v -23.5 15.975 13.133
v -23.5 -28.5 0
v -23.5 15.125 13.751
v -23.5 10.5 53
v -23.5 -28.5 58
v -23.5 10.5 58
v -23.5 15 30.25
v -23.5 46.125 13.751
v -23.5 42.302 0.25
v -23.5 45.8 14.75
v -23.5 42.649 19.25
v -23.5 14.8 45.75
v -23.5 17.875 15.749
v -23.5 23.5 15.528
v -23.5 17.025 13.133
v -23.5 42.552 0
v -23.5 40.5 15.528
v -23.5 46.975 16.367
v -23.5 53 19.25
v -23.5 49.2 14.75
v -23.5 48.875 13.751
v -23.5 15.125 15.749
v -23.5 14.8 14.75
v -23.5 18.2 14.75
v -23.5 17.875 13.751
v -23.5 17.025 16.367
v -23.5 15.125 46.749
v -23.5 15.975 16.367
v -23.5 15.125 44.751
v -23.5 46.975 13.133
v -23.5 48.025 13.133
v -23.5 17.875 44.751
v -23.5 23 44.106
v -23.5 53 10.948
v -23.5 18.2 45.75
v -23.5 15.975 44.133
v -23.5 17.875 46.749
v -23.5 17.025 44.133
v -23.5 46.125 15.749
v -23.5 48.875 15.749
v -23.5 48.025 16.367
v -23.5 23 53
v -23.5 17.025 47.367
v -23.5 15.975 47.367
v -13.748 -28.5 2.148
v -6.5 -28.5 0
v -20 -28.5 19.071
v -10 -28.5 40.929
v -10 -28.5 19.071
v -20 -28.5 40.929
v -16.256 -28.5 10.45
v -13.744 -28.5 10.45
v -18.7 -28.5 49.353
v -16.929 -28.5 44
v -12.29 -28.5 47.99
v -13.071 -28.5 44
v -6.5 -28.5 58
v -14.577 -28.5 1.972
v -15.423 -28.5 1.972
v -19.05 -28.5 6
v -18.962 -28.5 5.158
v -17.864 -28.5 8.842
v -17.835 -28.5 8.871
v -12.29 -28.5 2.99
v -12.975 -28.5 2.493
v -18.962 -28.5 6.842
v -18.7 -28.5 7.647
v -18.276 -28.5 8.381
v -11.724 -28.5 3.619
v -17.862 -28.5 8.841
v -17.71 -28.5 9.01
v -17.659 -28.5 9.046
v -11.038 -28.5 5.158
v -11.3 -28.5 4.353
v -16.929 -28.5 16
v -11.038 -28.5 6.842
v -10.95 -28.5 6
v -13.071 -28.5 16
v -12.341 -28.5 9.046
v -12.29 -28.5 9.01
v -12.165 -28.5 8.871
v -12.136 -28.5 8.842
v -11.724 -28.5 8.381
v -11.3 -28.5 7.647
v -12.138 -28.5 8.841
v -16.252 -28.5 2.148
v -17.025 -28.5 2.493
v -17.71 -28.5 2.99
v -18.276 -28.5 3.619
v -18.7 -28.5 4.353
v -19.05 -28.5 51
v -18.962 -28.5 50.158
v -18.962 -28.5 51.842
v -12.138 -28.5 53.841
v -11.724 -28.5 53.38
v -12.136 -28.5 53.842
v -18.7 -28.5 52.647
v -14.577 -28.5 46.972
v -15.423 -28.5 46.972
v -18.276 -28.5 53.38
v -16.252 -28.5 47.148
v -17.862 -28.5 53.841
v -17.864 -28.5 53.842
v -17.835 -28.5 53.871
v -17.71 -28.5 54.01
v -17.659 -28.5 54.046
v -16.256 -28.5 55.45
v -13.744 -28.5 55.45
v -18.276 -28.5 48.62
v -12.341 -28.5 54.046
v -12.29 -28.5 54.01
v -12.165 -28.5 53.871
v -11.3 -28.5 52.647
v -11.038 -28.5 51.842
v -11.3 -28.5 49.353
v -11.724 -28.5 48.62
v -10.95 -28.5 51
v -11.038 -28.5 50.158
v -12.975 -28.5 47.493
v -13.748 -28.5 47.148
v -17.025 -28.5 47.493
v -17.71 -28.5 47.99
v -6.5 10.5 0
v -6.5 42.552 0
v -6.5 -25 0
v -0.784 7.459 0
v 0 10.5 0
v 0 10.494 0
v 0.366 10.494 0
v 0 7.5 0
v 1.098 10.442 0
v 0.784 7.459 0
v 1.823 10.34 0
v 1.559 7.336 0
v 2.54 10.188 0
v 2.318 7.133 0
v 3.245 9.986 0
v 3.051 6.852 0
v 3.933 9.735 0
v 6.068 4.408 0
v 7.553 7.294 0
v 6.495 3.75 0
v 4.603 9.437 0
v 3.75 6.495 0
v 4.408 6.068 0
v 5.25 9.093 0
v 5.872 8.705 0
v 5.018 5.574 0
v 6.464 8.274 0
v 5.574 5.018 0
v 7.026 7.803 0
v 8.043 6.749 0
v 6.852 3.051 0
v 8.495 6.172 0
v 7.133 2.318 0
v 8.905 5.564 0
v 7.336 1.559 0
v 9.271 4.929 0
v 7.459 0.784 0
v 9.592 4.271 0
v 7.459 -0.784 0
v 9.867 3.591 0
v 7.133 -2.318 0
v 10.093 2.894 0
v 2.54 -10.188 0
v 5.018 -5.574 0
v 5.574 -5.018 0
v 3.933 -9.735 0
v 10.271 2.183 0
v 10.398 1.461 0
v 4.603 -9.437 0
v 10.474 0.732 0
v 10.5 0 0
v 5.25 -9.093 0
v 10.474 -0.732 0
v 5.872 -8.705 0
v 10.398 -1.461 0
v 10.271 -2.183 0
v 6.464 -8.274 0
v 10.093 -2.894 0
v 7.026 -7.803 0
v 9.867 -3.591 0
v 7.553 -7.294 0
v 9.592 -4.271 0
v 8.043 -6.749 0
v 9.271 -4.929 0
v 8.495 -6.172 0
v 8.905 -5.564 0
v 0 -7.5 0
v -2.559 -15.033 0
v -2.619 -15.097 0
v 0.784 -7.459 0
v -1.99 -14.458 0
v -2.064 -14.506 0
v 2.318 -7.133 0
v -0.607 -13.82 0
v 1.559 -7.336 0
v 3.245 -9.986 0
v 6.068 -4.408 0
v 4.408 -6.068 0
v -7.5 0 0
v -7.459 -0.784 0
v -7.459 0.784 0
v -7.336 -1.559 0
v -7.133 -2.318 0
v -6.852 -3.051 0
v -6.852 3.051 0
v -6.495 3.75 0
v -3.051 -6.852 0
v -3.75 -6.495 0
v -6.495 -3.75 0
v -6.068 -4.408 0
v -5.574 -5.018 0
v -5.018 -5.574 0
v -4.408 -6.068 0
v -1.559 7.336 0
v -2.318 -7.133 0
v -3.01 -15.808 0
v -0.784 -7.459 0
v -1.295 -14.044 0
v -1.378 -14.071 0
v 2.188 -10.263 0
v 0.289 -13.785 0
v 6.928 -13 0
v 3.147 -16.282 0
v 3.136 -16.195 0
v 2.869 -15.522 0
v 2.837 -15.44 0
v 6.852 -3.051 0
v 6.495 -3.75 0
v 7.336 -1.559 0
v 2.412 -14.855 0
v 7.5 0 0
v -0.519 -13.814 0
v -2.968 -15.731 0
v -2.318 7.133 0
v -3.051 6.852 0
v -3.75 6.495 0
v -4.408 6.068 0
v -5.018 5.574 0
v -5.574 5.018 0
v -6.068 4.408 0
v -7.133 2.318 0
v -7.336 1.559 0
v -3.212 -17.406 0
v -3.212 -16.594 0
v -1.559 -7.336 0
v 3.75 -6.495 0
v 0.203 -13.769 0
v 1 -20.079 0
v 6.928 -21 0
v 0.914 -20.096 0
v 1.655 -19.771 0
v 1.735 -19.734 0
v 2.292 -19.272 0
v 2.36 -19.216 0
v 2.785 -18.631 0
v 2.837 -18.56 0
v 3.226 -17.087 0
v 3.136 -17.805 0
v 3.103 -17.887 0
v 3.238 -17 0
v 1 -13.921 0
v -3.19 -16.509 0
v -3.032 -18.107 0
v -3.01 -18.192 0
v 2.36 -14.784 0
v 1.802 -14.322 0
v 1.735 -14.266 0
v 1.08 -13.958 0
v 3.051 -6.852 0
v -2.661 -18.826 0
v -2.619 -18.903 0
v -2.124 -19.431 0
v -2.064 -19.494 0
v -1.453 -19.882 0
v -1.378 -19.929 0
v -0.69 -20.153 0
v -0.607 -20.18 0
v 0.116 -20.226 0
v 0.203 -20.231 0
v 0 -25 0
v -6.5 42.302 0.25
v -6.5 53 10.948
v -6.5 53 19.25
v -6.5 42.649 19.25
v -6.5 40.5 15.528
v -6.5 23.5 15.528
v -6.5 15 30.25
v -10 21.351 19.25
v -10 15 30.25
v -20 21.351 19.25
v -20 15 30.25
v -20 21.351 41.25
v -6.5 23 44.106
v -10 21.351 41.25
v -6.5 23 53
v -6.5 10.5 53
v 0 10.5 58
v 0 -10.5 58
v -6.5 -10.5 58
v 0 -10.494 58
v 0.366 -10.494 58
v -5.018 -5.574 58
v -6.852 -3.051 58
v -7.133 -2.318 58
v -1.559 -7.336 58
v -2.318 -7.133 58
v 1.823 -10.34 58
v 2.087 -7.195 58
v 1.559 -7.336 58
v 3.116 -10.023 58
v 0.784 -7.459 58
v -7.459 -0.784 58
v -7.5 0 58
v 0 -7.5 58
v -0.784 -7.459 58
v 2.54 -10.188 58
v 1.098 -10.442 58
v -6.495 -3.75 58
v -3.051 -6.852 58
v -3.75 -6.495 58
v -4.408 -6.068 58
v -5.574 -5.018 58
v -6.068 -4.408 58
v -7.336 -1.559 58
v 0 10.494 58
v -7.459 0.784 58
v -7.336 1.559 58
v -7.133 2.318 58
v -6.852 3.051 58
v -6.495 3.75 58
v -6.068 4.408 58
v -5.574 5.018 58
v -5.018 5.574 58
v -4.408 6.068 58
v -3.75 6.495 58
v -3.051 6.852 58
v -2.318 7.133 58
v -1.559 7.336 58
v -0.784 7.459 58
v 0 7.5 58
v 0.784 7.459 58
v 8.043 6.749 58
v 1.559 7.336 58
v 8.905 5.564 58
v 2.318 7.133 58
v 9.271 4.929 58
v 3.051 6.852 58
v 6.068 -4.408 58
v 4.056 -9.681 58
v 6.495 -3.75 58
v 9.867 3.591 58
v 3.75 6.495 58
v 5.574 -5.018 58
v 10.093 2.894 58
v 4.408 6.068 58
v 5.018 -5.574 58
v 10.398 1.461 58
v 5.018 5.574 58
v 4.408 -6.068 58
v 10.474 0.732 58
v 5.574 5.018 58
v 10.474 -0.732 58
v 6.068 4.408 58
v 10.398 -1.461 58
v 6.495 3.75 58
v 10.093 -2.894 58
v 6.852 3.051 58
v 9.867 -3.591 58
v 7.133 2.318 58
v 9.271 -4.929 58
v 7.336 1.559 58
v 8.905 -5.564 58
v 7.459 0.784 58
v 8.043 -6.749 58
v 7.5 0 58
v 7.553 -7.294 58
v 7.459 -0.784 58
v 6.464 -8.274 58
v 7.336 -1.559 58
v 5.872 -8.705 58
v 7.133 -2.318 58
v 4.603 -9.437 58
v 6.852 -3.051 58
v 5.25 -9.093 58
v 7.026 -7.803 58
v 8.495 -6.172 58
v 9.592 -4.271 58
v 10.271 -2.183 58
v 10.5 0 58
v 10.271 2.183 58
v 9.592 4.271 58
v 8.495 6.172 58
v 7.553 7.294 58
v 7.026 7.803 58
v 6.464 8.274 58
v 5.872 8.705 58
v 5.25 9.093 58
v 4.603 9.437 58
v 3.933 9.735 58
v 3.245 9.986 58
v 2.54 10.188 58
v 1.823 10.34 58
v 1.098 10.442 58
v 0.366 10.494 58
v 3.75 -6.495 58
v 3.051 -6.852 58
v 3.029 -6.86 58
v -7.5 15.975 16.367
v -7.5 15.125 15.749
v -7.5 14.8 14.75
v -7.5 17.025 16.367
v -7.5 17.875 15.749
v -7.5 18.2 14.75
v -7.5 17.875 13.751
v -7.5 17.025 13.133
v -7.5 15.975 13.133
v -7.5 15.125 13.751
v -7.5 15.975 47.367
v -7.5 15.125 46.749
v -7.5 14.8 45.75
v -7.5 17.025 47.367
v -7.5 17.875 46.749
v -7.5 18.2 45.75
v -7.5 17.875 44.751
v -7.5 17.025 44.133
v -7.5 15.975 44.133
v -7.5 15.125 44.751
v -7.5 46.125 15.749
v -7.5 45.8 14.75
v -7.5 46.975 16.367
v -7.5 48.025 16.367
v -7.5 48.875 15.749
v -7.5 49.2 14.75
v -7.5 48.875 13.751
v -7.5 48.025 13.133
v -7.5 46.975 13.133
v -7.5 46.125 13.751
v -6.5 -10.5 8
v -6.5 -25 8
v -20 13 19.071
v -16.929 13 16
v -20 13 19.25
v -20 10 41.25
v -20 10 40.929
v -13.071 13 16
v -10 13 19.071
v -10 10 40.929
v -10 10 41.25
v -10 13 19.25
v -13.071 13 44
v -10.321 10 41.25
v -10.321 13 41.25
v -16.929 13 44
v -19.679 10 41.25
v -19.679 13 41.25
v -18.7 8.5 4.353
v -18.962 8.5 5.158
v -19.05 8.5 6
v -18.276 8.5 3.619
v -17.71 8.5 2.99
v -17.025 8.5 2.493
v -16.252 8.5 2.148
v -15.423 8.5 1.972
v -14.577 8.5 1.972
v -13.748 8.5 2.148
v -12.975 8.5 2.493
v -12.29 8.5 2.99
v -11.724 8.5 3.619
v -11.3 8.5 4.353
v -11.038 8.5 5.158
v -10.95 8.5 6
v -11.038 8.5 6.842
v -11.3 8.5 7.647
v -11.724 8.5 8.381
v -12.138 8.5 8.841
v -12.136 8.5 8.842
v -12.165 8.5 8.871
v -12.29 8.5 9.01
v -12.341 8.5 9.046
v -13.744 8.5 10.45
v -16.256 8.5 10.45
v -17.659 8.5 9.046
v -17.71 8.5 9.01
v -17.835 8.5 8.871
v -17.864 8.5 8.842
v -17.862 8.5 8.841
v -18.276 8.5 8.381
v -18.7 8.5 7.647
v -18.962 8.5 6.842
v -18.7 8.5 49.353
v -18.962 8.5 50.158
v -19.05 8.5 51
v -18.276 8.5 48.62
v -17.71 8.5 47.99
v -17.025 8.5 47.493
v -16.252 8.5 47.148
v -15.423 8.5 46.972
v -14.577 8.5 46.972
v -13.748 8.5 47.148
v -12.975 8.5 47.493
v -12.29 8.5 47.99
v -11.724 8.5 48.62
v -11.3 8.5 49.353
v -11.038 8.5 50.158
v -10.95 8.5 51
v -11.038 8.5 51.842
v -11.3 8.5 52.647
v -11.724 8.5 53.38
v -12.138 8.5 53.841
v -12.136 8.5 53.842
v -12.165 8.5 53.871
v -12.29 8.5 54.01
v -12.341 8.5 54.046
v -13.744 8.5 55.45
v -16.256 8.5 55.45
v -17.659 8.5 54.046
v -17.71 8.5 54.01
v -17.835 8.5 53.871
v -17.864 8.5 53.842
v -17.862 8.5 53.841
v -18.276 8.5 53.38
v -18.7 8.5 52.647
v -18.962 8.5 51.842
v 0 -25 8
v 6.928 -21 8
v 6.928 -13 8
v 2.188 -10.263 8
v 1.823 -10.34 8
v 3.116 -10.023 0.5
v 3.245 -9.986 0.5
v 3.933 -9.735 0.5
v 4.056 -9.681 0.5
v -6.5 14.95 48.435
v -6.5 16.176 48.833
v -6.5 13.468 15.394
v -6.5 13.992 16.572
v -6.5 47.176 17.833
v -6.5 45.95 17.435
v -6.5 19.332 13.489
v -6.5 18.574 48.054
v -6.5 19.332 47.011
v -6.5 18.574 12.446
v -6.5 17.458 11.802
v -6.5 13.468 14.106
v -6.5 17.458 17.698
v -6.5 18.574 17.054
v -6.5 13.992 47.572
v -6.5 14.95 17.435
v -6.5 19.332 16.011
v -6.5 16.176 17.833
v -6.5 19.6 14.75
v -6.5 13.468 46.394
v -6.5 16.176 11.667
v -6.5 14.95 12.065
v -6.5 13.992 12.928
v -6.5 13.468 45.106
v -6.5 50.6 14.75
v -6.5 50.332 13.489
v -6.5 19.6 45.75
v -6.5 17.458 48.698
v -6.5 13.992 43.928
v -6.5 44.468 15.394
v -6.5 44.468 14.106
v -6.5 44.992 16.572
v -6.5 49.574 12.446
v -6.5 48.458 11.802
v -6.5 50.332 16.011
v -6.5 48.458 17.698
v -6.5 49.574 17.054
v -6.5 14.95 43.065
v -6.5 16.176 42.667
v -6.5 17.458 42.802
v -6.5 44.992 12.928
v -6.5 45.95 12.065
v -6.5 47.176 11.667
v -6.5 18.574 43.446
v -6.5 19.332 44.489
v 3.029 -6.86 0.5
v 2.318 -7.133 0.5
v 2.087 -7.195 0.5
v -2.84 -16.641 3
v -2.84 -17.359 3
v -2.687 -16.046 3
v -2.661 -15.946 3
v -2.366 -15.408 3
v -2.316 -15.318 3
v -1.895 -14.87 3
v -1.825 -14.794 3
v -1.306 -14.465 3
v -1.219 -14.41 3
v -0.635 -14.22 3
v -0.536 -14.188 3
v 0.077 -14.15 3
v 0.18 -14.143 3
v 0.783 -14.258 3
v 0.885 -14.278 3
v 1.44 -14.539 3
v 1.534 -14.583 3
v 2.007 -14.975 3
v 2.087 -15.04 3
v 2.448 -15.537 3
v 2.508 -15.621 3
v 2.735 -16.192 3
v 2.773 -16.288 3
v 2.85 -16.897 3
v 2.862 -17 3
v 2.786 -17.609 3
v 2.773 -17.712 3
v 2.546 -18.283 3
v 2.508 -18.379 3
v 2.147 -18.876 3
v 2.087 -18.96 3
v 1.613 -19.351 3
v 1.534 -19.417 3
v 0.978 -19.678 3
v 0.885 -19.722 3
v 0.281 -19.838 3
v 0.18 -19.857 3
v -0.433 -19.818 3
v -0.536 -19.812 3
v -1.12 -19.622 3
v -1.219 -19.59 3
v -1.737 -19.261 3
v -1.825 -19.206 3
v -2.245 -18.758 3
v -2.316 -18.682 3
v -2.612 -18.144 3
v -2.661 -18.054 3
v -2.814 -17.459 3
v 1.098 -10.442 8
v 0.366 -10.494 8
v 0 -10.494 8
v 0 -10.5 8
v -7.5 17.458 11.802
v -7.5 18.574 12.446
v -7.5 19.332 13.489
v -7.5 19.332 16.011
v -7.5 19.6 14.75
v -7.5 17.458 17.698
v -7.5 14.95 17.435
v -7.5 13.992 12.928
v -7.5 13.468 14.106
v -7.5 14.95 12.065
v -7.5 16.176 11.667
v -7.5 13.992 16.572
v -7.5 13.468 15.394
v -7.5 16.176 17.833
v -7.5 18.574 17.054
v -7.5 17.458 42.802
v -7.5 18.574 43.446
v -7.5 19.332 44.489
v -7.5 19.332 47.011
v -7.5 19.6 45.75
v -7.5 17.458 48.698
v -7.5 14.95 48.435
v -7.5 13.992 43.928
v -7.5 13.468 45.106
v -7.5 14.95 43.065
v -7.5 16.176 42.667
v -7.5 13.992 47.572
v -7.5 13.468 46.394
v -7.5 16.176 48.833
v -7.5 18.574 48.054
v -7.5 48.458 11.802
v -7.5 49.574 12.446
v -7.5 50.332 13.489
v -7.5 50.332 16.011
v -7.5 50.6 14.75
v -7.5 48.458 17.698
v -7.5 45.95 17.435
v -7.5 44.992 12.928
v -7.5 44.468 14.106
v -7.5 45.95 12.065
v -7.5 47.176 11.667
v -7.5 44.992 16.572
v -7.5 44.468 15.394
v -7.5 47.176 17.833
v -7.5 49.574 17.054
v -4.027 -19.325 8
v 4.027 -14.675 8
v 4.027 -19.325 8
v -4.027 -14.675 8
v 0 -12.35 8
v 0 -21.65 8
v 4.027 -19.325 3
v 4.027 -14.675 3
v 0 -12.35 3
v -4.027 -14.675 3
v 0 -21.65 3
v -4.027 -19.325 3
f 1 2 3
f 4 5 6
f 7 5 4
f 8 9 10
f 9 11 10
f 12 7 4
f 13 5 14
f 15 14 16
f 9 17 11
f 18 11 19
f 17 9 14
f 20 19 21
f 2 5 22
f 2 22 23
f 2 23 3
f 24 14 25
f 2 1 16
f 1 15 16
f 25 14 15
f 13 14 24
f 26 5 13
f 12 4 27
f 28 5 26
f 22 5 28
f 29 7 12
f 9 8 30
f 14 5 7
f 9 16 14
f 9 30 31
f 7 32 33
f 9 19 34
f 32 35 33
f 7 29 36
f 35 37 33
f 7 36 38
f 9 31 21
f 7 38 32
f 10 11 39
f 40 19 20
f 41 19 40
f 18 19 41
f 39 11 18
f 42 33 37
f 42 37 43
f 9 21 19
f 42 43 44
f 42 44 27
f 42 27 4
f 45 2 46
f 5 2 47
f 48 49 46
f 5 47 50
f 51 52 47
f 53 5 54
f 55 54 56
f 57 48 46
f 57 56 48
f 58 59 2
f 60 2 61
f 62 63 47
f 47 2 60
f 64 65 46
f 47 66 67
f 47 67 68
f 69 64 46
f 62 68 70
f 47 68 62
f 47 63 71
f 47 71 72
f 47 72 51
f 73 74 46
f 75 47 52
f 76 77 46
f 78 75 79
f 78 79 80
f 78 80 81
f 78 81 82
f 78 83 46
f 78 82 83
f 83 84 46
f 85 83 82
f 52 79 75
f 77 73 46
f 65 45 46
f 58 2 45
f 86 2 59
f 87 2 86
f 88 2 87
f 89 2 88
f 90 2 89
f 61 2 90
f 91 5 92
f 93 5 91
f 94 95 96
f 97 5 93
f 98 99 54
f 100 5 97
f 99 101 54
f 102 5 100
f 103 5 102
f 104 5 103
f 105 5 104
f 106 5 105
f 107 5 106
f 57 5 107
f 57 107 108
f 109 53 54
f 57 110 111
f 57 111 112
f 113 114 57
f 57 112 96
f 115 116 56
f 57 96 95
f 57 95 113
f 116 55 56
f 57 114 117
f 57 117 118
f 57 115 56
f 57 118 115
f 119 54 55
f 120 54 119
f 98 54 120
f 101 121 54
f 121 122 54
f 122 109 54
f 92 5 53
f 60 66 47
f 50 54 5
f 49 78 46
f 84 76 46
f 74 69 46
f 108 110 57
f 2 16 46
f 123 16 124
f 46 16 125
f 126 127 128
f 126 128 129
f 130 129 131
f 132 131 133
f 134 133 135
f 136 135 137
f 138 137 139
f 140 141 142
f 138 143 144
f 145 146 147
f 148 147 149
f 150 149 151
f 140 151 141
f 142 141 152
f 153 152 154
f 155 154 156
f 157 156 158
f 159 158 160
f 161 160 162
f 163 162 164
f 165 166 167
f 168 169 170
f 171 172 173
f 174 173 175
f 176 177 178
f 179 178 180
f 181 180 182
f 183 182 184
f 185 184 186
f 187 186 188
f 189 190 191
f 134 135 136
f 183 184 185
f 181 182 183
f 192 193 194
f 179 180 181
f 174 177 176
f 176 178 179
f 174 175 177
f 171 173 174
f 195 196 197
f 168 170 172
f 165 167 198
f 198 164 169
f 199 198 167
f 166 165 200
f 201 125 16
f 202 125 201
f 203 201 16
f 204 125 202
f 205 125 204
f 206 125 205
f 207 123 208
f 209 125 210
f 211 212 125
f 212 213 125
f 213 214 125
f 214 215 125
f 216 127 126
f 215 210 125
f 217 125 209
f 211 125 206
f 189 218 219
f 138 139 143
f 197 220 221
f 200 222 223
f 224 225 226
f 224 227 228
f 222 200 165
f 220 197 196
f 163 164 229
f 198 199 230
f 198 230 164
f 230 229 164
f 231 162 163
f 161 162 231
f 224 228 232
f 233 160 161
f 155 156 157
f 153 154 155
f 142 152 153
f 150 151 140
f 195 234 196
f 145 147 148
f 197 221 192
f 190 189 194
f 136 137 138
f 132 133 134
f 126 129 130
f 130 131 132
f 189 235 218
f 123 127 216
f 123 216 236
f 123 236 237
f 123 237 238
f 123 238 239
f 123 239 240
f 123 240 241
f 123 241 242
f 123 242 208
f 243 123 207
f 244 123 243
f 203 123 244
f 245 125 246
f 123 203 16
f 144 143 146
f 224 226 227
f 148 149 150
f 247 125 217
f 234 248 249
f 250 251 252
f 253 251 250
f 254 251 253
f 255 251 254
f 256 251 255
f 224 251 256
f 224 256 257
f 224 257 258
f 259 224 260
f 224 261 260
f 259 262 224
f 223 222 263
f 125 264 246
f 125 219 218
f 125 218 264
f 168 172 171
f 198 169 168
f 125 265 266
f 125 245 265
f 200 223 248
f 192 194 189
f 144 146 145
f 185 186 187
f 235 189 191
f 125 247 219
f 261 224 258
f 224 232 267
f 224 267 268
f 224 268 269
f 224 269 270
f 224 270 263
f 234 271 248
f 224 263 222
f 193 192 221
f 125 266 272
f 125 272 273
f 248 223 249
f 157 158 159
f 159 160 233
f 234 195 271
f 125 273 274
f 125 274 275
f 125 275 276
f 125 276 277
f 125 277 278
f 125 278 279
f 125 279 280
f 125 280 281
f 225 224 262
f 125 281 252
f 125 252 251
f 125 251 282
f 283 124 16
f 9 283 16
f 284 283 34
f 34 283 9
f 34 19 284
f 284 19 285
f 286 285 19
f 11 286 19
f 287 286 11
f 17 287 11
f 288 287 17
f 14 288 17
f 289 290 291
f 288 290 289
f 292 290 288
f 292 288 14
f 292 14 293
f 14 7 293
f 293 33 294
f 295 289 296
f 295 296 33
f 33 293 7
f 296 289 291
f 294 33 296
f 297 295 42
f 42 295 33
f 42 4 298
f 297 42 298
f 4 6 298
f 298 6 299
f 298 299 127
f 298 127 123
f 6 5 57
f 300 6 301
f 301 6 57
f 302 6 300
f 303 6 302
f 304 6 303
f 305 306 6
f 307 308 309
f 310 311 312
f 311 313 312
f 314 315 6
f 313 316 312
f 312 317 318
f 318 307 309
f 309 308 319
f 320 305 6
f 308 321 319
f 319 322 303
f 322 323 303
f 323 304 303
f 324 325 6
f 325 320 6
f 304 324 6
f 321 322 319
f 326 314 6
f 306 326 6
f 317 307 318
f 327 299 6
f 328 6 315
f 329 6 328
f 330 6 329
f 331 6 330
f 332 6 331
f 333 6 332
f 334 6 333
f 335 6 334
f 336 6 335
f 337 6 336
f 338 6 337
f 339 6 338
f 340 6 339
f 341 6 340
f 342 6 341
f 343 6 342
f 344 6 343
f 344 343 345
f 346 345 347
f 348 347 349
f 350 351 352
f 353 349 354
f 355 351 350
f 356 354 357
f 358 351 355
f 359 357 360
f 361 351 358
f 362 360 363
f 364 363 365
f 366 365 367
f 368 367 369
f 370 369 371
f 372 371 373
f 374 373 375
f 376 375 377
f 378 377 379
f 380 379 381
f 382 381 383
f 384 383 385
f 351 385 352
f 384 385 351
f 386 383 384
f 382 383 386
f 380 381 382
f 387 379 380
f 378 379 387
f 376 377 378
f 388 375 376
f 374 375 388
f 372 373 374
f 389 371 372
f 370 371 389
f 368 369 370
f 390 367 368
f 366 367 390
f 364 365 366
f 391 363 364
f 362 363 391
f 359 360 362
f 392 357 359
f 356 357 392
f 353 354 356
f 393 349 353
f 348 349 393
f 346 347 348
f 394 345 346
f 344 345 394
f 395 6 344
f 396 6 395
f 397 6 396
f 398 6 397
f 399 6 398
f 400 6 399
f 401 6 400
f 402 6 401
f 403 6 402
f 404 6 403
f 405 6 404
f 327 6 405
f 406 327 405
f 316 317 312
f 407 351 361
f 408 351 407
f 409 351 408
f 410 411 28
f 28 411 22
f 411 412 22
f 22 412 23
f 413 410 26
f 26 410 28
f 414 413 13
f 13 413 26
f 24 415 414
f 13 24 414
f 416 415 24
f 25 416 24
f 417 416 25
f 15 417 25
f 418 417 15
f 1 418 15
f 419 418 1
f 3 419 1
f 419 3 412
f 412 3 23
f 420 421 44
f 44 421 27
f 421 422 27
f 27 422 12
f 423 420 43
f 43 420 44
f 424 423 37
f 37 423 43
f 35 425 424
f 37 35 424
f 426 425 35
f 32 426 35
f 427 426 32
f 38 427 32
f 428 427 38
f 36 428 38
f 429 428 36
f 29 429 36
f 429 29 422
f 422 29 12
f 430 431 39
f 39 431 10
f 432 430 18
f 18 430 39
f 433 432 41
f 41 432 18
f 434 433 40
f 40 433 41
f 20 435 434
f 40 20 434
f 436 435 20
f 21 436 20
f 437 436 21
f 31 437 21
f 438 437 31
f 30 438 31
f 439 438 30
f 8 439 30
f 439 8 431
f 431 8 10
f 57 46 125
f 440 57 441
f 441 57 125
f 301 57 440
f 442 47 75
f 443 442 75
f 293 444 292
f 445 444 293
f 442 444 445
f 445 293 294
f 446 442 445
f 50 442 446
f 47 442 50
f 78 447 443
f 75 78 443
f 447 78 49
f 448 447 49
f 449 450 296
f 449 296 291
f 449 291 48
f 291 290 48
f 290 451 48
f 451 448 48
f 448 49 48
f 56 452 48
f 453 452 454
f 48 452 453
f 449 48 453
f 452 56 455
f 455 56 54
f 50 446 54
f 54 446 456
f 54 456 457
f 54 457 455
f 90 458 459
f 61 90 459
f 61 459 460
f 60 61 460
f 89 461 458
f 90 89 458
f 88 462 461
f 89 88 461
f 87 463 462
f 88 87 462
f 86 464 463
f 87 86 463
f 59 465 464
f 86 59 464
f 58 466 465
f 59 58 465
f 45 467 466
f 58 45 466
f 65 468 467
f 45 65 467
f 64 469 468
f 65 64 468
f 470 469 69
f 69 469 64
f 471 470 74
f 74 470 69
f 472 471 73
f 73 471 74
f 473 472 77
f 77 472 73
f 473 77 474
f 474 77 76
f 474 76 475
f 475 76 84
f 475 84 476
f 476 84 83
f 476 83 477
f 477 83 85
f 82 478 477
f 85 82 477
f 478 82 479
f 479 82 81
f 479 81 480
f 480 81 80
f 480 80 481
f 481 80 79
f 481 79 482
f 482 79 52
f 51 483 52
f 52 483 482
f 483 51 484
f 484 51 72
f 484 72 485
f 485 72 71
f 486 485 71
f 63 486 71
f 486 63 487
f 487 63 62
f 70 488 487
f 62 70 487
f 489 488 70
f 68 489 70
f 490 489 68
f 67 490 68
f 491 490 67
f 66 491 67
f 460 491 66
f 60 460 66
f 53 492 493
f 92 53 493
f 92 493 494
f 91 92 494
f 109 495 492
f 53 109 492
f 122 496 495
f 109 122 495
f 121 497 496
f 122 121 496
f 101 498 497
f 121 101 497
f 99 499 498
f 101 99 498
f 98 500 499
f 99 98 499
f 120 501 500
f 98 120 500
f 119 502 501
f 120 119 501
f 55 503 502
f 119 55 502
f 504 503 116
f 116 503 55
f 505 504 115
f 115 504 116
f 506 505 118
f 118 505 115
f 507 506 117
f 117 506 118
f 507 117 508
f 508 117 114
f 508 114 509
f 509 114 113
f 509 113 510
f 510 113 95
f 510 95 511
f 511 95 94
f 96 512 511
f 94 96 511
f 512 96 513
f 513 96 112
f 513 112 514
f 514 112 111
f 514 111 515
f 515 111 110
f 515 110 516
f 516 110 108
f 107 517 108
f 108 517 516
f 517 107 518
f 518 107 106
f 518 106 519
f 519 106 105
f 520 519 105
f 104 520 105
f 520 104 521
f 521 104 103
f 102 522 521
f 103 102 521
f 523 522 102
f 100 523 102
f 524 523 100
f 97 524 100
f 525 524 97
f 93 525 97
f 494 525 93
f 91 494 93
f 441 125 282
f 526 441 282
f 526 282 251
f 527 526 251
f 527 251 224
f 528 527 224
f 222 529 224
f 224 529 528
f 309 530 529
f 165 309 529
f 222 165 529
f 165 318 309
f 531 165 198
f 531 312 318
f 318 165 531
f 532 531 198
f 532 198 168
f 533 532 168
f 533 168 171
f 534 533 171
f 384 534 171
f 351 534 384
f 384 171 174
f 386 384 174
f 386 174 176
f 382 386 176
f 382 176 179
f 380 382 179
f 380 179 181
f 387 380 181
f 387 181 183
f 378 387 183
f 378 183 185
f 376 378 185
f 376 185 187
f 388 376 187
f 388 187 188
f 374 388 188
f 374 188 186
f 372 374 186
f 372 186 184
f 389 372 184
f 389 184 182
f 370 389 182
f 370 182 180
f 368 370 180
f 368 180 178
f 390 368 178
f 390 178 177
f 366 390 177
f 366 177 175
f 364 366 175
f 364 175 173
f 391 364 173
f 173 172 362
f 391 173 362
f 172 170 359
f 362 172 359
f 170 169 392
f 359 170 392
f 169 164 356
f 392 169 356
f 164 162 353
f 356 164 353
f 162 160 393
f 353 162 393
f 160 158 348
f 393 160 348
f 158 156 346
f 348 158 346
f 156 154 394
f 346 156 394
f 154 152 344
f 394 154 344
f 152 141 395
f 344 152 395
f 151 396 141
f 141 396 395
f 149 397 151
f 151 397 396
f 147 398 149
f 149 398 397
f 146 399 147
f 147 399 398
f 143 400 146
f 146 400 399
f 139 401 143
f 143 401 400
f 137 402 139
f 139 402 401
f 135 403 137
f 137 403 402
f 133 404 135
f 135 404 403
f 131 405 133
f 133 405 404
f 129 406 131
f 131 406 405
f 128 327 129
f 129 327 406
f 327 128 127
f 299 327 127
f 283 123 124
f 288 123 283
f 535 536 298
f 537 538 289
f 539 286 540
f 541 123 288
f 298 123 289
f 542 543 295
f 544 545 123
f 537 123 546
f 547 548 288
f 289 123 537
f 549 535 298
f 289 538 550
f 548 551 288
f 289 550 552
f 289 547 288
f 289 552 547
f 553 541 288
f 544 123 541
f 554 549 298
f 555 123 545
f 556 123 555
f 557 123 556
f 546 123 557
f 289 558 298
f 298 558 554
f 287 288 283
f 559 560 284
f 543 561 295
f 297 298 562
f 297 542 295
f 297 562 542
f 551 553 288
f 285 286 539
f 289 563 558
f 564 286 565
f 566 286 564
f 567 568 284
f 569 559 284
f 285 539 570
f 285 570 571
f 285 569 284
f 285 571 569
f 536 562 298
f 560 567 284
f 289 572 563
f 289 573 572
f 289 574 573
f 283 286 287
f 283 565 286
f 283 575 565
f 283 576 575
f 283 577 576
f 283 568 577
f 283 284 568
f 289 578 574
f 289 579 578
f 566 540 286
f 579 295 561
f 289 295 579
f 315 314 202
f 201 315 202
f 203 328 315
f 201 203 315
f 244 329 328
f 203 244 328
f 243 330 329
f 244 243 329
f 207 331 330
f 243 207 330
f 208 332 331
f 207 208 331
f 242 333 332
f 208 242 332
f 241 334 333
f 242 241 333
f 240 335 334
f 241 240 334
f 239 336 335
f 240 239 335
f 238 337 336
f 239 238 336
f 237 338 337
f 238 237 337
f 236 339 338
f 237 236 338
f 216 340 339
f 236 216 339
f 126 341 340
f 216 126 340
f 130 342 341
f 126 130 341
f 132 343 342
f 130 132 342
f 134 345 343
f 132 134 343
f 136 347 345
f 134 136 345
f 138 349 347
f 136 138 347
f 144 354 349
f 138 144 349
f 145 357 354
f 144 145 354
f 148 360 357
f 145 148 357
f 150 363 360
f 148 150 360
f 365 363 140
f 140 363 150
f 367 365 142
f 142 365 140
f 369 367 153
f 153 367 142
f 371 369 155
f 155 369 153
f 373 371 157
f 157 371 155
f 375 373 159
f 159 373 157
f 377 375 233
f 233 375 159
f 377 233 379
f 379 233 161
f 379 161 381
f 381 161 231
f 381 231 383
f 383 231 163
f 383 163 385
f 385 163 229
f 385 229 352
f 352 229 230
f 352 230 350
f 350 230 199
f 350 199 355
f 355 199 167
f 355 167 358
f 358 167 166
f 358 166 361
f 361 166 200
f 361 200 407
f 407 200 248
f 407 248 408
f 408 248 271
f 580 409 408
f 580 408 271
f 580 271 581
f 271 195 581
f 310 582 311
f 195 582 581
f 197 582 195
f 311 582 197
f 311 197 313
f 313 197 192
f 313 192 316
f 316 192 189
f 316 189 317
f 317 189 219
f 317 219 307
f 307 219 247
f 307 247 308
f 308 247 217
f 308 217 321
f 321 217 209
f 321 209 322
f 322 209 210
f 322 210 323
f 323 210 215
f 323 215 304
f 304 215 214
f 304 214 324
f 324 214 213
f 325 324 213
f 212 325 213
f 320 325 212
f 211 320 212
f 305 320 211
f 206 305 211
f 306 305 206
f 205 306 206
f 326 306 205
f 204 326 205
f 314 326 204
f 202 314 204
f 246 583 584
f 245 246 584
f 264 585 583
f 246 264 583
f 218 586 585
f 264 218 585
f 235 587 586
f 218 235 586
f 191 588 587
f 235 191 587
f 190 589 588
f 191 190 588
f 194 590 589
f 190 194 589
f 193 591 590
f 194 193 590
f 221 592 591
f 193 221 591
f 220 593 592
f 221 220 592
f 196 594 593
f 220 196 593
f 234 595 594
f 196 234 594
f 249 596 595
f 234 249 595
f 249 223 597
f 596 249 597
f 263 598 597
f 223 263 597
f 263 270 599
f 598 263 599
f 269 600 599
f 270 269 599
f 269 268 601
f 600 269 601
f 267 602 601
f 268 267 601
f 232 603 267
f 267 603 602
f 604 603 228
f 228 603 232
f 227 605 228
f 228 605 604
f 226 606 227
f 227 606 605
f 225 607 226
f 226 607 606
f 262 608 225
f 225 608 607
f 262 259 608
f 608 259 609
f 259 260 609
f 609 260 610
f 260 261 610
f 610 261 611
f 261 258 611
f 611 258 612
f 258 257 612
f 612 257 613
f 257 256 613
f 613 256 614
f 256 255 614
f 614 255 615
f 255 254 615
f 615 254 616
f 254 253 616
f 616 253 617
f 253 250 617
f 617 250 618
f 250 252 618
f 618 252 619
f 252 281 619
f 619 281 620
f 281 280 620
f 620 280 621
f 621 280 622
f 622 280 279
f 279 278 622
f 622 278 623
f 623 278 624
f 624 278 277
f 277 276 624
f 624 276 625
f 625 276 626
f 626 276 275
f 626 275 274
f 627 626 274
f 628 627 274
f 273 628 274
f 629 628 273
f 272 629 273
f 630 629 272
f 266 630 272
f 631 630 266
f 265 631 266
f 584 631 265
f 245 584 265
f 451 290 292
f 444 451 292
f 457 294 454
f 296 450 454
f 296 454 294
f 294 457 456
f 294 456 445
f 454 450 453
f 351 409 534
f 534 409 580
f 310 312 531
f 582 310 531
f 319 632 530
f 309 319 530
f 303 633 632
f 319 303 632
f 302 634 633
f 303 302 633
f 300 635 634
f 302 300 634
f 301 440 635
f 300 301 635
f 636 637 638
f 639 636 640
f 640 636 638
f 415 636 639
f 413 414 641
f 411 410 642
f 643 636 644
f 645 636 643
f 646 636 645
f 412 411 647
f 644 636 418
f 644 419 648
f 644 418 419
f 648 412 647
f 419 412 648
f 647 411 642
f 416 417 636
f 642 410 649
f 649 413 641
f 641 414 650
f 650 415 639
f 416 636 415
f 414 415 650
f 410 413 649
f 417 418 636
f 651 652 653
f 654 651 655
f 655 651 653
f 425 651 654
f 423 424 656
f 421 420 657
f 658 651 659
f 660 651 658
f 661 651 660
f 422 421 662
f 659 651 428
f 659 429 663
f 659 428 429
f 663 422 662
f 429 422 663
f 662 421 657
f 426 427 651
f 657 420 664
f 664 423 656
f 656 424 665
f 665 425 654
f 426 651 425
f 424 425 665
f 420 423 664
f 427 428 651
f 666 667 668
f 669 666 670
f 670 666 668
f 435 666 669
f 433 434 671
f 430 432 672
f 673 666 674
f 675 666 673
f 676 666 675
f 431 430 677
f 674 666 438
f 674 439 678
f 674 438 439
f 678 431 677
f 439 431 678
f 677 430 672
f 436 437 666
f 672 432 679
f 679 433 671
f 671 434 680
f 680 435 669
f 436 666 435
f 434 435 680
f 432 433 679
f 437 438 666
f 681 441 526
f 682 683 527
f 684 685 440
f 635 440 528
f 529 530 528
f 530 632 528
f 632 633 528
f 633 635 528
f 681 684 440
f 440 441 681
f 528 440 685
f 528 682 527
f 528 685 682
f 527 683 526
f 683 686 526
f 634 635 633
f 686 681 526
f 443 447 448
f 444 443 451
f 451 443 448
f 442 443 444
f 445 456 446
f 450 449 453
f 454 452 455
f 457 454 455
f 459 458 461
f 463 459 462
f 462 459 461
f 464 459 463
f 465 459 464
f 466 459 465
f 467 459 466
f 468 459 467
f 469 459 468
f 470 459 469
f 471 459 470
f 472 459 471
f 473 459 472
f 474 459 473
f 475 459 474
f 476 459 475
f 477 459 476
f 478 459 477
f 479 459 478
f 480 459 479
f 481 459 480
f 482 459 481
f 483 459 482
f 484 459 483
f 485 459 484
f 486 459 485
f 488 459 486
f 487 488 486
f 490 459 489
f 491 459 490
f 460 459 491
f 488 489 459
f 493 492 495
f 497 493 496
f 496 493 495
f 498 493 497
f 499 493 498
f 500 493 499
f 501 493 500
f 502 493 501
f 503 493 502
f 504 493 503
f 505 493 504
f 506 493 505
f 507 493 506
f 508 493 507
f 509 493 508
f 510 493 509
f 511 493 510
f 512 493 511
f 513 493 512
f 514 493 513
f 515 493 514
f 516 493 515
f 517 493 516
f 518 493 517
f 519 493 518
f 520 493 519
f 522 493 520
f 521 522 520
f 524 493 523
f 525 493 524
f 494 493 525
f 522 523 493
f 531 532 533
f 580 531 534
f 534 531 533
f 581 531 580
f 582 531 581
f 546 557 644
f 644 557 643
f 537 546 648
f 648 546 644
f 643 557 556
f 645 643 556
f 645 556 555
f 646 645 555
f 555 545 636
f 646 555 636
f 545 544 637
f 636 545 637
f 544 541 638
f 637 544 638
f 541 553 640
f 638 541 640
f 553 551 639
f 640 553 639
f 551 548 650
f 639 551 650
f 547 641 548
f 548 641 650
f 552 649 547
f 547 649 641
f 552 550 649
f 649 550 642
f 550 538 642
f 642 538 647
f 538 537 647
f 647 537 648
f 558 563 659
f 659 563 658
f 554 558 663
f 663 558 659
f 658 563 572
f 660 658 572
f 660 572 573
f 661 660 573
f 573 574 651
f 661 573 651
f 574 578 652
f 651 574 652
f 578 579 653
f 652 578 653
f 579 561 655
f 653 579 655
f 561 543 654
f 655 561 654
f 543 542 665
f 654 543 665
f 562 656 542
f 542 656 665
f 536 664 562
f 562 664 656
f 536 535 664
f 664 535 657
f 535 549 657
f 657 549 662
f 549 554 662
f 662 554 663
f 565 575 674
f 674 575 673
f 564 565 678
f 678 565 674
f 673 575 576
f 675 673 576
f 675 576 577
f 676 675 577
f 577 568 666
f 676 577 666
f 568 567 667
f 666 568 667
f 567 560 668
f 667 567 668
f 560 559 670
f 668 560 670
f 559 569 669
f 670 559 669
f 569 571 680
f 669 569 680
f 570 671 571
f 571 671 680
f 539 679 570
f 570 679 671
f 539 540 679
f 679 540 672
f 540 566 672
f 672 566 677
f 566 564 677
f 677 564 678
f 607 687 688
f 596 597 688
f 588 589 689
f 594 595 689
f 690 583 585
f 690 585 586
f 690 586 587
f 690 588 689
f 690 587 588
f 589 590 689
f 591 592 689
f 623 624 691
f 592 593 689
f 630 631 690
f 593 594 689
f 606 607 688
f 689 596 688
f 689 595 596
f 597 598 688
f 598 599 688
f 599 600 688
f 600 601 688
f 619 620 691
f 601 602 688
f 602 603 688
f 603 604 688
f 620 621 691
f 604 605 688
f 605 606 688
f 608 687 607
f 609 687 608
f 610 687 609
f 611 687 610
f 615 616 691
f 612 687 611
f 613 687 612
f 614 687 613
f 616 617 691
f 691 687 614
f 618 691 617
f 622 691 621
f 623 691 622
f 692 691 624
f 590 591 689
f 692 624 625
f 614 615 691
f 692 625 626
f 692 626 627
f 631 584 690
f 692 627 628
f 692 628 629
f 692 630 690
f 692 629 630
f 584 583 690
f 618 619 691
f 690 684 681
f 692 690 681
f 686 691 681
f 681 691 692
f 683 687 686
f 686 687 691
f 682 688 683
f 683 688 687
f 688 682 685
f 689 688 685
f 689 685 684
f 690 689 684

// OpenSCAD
// file: inc/bearing.scad
// PRUSA iteration3
// Bearing holders
// GNU GPL v3
// Josef Průša <iam@josefprusa.cz> and contributors
// http://www.reprap.org/wiki/Prusa_Mendel
// http://prusamendel.org

bearing_diameter = 15;

module horizontal_bearing_base(bearings=1) {
  translate(v=[0,0,6]) cube(size = [24,8+bearings*25,12], center = true);
}

module horizontal_bearing_holes(bearings=1) {
  cutter_lenght = 10+bearings*25;
  one_holder_lenght = 8+25;
  holder_lenght = 8+bearings*25;

  // Main bearing cut
  difference() {
    translate(v = [0,0,12]) rotate(a = [90,0,0]) translate(v = [0,0,-cutter_lenght/2]) cylinder(h = cutter_lenght, r = bearing_diameter/2, $fn = 50);
    // Bearing retainers
    translate(v=[0,1-holder_lenght/2,3]) cube(size = [24,6,8], center = true);
    translate(v=[0,-1+holder_lenght/2,3]) cube(size = [24,6,8], center = true);
  }

  // Ziptie cutouts
  ziptie_cut_ofset = 0;

  for (i = [0:bearings-1]) {
    // For easier positioning I move them by half of one
    // bearing holder then add each bearign lenght and then center again
    translate(v = [0,-holder_lenght/2,0]) translate(v = [0,one_holder_lenght/2+i*25,0]) difference(){
      union(){
        translate(v = [0,2-6,12]) rotate(a = [90,0,0]) translate(v = [0,0,0]) cylinder(h = 4, r = 12.5, $fn = 50);
        translate(v = [0,2+6,12]) rotate(a = [90,0,0]) translate(v = [0,0,0]) cylinder(h = 4, r = 12.5, $fn = 50);
      }
      translate(v = [0,10,12]) rotate(a = [90,0,0]) translate(v = [0,0,0]) cylinder(h = 24, r = 10, $fn = 50);
    }
  }
}

module horizontal_bearing_test() {
  difference(){
    horizontal_bearing_base(1);
    horizontal_bearing_holes(1);
  }
  translate(v=[30,0,0]) difference(){
    horizontal_bearing_base(2);
    horizontal_bearing_holes(2);
  }
  translate(v=[60,0,0]) difference(){
    horizontal_bearing_base(3);
    horizontal_bearing_holes(3);
  }
}

thinwall = 3;
bearing_size = bearing_diameter + 2 * thinwall;

module vertical_bearing_base() {
  translate(v = [-2-bearing_size/4,0,29]) cube(size = [4+bearing_size/2,bearing_size,58], center = true);
  cylinder(h = 58, r=bearing_size/2, $fn = 90);
}

module vertical_bearing_holes() {
  translate(v = [0,0,-1]) cylinder(h = 62, r = bearing_diameter/2, $fn = 60);
  rotate(a = [0,0,-70]) translate(v = [8,0,31.5]) cube(size = [5,1,62], center = true);
}

difference() {
  vertical_bearing_base();
  vertical_bearing_holes();
}
// file: inc/x-end.scad
// PRUSA iteration3
// X end prototype
// GNU GPL v3
// Josef Průša <iam@josefprusa.cz> and contributors
// http://www.reprap.org/wiki/Prusa_Mendel
// http://prusamendel.org

use <bearing.scad>
rod_distance = 45;
m5_tolerance = 0.3;

module x_end_base() {
  // Main block
  height = 58;

  translate(v = [-15,-9,height/2]) cube(size = [17,39,height], center = true);

  // Bearing holder
  vertical_bearing_base();

  // Nut trap
  // Cube
  translate(v = [-2-2,-17,4]) cube(size = [8,16,8], center = true);
  // Hexagon
  translate(v = [0,-17,0]) rotate([0,0,30]) cylinder(h = 8, r = 8, $fn = 6);
}

module x_end_holes() {
  vertical_bearing_holes();

  // Belt hole
  translate(v = [-1,0,0])

  difference() {
    translate(v = [-5.5-10+1.5,-10,30]) cube(size = [10,46,28], center = true);

  	// Nice edges
  	translate(v = [-5.5-10+1.5,-10,30+23]) rotate([0,45,0]) cube(size = [10,46,28], center = true);
  	translate(v = [-5.5-10+1.5,-10,30+23]) rotate([0,-45,0]) cube(size = [10,46,28], center = true);
  	translate(v = [-5.5-10+1.5,-10,30-23]) rotate([0,45,0]) cube(size = [10,46,28], center = true);
  	translate(v = [-5.5-10+1.5,-10,30-23]) rotate([0,-45,0]) cube(size = [10,46,28], center = true);
}

  // Bottom pushfit rod
  translate(v = [-15,-41.5,6]) rotate(a = [-90,0,0]) pushfit_rod(8.1,50);

  // Top pushfit rod
  translate(v = [-15,-41.5,rod_distance+6]) rotate(a = [-90,0,0]) pushfit_rod(8.1,50);

  // Nut trap
  translate(v = [0,-17,-0.5]) cylinder(h = 4, r1 = 3.3, r2 = 2.8, $fn = 25);
  translate(v = [0,-17,3]) rotate([0,0,30]) cylinder(h = 10, r=4.5+m5_tolerance/2, $fn = 6);
}

// Final prototype
module x_end_plain() {
  difference() {
    x_end_base();
    x_end_holes();
  }
}

x_end_plain();

module pushfit_rod(diameter,length) {
  cylinder(h = length, r = diameter/2, $fn = 30);
  difference() {
 	  translate(v = [0,-diameter/2.85,length/2]) rotate([0,0,45]) cube(size = [diameter/2,diameter/2,length], center = true);
 	  translate(v = [0,-diameter/4-diameter/2-0.4,length/2]) rotate([0,0,0]) cube(size = [diameter,diameter/2,length], center = true);
  }
  //translate(v=[0,-diameter/2-2,length/2]) cube(size = [diameter,1,length], center = true);
}
// main file
// PRUSA iteration3
// X end motor
// GNU GPL v3
// Josef Průša <iam@josefprusa.cz> and contributors
// http://www.reprap.org/wiki/Prusa_Mendel
// http://prusamendel.org

use <inc/x-end.scad>

module x_end_motor_base() {
  x_end_base();
  translate(v = [-15,31,26.5]) cube(size = [17,44,53], center = true);
}

module x_end_motor_holes() {
  x_end_holes();

  // Position to place
  translate(v = [-1,32,30.25]) {
    // Belt hole
    translate(v = [-14,1,0]) cube(size = [10,46,22], center = true);

    // Motor mounting holes
    translate(v = [20,-15.5,-15.5]) rotate(a = [0,-90,0]) rotate(a = [0,0,90]) cylinder(h = 70, r = 1.7, $fn = 10);
    translate(v = [3.5,-15.5,-15.5]) rotate(a = [0,-90,0]) rotate(a = [0,0,90]) cylinder(h = 10, r = 3.1, $fn = 15);

    translate(v = [20,-15.5,15.5]) rotate(a = [0,-90,0]) rotate(a = [0,0,90]) cylinder(h = 70, r = 1.7, $fn = 10);
    translate(v = [3.5,-15.5,15.5]) rotate(a = [0,-90,0]) rotate(a = [0,0,90]) cylinder(h = 10, r = 3.1, $fn = 15);

    translate(v = [20,15.5,-15.5]) rotate(a = [0,-90,0]) rotate(a = [0,0,90]) cylinder(h = 70, r = 1.7, $fn = 10);
    translate(v = [3.5,15.5,-15.5]) rotate(a = [0,-90,0]) rotate(a = [0,0,90]) cylinder(h = 10, r = 3.1, $fn = 15);

    //translate(v=[20,15.5,15.5]) rotate(a=[0,-90,0]) rotate(a=[0,0,90]) cylinder(h = 70, r=1.7, $fn=10);
    //translate(v=[3.5,15.5,15.5]) rotate(a=[0,-90,0]) rotate(a=[0,0,90]) cylinder(h = 10, r=3.1, $fn=15);

    // Material saving cutout
    translate(v = [-10,12,10]) cube(size = [60,42,42], center = true);

    // Material saving cutout
    translate(v = [-10,40,-30]) rotate(a = [45,0,0])  cube(size = [60,42,42], center = true);

    // Motor shaft cutout
    translate(v = [0,0,0]) rotate(a = [0,-90,0]) rotate(a = [0,0,90]) cylinder(h = 70, r = 17, $fn = 6);
  }
}

// Final part
module x_end_motor() {
  difference(){
    x_end_motor_base();
    x_end_motor_holes();
  }
}

x_end_motor();
